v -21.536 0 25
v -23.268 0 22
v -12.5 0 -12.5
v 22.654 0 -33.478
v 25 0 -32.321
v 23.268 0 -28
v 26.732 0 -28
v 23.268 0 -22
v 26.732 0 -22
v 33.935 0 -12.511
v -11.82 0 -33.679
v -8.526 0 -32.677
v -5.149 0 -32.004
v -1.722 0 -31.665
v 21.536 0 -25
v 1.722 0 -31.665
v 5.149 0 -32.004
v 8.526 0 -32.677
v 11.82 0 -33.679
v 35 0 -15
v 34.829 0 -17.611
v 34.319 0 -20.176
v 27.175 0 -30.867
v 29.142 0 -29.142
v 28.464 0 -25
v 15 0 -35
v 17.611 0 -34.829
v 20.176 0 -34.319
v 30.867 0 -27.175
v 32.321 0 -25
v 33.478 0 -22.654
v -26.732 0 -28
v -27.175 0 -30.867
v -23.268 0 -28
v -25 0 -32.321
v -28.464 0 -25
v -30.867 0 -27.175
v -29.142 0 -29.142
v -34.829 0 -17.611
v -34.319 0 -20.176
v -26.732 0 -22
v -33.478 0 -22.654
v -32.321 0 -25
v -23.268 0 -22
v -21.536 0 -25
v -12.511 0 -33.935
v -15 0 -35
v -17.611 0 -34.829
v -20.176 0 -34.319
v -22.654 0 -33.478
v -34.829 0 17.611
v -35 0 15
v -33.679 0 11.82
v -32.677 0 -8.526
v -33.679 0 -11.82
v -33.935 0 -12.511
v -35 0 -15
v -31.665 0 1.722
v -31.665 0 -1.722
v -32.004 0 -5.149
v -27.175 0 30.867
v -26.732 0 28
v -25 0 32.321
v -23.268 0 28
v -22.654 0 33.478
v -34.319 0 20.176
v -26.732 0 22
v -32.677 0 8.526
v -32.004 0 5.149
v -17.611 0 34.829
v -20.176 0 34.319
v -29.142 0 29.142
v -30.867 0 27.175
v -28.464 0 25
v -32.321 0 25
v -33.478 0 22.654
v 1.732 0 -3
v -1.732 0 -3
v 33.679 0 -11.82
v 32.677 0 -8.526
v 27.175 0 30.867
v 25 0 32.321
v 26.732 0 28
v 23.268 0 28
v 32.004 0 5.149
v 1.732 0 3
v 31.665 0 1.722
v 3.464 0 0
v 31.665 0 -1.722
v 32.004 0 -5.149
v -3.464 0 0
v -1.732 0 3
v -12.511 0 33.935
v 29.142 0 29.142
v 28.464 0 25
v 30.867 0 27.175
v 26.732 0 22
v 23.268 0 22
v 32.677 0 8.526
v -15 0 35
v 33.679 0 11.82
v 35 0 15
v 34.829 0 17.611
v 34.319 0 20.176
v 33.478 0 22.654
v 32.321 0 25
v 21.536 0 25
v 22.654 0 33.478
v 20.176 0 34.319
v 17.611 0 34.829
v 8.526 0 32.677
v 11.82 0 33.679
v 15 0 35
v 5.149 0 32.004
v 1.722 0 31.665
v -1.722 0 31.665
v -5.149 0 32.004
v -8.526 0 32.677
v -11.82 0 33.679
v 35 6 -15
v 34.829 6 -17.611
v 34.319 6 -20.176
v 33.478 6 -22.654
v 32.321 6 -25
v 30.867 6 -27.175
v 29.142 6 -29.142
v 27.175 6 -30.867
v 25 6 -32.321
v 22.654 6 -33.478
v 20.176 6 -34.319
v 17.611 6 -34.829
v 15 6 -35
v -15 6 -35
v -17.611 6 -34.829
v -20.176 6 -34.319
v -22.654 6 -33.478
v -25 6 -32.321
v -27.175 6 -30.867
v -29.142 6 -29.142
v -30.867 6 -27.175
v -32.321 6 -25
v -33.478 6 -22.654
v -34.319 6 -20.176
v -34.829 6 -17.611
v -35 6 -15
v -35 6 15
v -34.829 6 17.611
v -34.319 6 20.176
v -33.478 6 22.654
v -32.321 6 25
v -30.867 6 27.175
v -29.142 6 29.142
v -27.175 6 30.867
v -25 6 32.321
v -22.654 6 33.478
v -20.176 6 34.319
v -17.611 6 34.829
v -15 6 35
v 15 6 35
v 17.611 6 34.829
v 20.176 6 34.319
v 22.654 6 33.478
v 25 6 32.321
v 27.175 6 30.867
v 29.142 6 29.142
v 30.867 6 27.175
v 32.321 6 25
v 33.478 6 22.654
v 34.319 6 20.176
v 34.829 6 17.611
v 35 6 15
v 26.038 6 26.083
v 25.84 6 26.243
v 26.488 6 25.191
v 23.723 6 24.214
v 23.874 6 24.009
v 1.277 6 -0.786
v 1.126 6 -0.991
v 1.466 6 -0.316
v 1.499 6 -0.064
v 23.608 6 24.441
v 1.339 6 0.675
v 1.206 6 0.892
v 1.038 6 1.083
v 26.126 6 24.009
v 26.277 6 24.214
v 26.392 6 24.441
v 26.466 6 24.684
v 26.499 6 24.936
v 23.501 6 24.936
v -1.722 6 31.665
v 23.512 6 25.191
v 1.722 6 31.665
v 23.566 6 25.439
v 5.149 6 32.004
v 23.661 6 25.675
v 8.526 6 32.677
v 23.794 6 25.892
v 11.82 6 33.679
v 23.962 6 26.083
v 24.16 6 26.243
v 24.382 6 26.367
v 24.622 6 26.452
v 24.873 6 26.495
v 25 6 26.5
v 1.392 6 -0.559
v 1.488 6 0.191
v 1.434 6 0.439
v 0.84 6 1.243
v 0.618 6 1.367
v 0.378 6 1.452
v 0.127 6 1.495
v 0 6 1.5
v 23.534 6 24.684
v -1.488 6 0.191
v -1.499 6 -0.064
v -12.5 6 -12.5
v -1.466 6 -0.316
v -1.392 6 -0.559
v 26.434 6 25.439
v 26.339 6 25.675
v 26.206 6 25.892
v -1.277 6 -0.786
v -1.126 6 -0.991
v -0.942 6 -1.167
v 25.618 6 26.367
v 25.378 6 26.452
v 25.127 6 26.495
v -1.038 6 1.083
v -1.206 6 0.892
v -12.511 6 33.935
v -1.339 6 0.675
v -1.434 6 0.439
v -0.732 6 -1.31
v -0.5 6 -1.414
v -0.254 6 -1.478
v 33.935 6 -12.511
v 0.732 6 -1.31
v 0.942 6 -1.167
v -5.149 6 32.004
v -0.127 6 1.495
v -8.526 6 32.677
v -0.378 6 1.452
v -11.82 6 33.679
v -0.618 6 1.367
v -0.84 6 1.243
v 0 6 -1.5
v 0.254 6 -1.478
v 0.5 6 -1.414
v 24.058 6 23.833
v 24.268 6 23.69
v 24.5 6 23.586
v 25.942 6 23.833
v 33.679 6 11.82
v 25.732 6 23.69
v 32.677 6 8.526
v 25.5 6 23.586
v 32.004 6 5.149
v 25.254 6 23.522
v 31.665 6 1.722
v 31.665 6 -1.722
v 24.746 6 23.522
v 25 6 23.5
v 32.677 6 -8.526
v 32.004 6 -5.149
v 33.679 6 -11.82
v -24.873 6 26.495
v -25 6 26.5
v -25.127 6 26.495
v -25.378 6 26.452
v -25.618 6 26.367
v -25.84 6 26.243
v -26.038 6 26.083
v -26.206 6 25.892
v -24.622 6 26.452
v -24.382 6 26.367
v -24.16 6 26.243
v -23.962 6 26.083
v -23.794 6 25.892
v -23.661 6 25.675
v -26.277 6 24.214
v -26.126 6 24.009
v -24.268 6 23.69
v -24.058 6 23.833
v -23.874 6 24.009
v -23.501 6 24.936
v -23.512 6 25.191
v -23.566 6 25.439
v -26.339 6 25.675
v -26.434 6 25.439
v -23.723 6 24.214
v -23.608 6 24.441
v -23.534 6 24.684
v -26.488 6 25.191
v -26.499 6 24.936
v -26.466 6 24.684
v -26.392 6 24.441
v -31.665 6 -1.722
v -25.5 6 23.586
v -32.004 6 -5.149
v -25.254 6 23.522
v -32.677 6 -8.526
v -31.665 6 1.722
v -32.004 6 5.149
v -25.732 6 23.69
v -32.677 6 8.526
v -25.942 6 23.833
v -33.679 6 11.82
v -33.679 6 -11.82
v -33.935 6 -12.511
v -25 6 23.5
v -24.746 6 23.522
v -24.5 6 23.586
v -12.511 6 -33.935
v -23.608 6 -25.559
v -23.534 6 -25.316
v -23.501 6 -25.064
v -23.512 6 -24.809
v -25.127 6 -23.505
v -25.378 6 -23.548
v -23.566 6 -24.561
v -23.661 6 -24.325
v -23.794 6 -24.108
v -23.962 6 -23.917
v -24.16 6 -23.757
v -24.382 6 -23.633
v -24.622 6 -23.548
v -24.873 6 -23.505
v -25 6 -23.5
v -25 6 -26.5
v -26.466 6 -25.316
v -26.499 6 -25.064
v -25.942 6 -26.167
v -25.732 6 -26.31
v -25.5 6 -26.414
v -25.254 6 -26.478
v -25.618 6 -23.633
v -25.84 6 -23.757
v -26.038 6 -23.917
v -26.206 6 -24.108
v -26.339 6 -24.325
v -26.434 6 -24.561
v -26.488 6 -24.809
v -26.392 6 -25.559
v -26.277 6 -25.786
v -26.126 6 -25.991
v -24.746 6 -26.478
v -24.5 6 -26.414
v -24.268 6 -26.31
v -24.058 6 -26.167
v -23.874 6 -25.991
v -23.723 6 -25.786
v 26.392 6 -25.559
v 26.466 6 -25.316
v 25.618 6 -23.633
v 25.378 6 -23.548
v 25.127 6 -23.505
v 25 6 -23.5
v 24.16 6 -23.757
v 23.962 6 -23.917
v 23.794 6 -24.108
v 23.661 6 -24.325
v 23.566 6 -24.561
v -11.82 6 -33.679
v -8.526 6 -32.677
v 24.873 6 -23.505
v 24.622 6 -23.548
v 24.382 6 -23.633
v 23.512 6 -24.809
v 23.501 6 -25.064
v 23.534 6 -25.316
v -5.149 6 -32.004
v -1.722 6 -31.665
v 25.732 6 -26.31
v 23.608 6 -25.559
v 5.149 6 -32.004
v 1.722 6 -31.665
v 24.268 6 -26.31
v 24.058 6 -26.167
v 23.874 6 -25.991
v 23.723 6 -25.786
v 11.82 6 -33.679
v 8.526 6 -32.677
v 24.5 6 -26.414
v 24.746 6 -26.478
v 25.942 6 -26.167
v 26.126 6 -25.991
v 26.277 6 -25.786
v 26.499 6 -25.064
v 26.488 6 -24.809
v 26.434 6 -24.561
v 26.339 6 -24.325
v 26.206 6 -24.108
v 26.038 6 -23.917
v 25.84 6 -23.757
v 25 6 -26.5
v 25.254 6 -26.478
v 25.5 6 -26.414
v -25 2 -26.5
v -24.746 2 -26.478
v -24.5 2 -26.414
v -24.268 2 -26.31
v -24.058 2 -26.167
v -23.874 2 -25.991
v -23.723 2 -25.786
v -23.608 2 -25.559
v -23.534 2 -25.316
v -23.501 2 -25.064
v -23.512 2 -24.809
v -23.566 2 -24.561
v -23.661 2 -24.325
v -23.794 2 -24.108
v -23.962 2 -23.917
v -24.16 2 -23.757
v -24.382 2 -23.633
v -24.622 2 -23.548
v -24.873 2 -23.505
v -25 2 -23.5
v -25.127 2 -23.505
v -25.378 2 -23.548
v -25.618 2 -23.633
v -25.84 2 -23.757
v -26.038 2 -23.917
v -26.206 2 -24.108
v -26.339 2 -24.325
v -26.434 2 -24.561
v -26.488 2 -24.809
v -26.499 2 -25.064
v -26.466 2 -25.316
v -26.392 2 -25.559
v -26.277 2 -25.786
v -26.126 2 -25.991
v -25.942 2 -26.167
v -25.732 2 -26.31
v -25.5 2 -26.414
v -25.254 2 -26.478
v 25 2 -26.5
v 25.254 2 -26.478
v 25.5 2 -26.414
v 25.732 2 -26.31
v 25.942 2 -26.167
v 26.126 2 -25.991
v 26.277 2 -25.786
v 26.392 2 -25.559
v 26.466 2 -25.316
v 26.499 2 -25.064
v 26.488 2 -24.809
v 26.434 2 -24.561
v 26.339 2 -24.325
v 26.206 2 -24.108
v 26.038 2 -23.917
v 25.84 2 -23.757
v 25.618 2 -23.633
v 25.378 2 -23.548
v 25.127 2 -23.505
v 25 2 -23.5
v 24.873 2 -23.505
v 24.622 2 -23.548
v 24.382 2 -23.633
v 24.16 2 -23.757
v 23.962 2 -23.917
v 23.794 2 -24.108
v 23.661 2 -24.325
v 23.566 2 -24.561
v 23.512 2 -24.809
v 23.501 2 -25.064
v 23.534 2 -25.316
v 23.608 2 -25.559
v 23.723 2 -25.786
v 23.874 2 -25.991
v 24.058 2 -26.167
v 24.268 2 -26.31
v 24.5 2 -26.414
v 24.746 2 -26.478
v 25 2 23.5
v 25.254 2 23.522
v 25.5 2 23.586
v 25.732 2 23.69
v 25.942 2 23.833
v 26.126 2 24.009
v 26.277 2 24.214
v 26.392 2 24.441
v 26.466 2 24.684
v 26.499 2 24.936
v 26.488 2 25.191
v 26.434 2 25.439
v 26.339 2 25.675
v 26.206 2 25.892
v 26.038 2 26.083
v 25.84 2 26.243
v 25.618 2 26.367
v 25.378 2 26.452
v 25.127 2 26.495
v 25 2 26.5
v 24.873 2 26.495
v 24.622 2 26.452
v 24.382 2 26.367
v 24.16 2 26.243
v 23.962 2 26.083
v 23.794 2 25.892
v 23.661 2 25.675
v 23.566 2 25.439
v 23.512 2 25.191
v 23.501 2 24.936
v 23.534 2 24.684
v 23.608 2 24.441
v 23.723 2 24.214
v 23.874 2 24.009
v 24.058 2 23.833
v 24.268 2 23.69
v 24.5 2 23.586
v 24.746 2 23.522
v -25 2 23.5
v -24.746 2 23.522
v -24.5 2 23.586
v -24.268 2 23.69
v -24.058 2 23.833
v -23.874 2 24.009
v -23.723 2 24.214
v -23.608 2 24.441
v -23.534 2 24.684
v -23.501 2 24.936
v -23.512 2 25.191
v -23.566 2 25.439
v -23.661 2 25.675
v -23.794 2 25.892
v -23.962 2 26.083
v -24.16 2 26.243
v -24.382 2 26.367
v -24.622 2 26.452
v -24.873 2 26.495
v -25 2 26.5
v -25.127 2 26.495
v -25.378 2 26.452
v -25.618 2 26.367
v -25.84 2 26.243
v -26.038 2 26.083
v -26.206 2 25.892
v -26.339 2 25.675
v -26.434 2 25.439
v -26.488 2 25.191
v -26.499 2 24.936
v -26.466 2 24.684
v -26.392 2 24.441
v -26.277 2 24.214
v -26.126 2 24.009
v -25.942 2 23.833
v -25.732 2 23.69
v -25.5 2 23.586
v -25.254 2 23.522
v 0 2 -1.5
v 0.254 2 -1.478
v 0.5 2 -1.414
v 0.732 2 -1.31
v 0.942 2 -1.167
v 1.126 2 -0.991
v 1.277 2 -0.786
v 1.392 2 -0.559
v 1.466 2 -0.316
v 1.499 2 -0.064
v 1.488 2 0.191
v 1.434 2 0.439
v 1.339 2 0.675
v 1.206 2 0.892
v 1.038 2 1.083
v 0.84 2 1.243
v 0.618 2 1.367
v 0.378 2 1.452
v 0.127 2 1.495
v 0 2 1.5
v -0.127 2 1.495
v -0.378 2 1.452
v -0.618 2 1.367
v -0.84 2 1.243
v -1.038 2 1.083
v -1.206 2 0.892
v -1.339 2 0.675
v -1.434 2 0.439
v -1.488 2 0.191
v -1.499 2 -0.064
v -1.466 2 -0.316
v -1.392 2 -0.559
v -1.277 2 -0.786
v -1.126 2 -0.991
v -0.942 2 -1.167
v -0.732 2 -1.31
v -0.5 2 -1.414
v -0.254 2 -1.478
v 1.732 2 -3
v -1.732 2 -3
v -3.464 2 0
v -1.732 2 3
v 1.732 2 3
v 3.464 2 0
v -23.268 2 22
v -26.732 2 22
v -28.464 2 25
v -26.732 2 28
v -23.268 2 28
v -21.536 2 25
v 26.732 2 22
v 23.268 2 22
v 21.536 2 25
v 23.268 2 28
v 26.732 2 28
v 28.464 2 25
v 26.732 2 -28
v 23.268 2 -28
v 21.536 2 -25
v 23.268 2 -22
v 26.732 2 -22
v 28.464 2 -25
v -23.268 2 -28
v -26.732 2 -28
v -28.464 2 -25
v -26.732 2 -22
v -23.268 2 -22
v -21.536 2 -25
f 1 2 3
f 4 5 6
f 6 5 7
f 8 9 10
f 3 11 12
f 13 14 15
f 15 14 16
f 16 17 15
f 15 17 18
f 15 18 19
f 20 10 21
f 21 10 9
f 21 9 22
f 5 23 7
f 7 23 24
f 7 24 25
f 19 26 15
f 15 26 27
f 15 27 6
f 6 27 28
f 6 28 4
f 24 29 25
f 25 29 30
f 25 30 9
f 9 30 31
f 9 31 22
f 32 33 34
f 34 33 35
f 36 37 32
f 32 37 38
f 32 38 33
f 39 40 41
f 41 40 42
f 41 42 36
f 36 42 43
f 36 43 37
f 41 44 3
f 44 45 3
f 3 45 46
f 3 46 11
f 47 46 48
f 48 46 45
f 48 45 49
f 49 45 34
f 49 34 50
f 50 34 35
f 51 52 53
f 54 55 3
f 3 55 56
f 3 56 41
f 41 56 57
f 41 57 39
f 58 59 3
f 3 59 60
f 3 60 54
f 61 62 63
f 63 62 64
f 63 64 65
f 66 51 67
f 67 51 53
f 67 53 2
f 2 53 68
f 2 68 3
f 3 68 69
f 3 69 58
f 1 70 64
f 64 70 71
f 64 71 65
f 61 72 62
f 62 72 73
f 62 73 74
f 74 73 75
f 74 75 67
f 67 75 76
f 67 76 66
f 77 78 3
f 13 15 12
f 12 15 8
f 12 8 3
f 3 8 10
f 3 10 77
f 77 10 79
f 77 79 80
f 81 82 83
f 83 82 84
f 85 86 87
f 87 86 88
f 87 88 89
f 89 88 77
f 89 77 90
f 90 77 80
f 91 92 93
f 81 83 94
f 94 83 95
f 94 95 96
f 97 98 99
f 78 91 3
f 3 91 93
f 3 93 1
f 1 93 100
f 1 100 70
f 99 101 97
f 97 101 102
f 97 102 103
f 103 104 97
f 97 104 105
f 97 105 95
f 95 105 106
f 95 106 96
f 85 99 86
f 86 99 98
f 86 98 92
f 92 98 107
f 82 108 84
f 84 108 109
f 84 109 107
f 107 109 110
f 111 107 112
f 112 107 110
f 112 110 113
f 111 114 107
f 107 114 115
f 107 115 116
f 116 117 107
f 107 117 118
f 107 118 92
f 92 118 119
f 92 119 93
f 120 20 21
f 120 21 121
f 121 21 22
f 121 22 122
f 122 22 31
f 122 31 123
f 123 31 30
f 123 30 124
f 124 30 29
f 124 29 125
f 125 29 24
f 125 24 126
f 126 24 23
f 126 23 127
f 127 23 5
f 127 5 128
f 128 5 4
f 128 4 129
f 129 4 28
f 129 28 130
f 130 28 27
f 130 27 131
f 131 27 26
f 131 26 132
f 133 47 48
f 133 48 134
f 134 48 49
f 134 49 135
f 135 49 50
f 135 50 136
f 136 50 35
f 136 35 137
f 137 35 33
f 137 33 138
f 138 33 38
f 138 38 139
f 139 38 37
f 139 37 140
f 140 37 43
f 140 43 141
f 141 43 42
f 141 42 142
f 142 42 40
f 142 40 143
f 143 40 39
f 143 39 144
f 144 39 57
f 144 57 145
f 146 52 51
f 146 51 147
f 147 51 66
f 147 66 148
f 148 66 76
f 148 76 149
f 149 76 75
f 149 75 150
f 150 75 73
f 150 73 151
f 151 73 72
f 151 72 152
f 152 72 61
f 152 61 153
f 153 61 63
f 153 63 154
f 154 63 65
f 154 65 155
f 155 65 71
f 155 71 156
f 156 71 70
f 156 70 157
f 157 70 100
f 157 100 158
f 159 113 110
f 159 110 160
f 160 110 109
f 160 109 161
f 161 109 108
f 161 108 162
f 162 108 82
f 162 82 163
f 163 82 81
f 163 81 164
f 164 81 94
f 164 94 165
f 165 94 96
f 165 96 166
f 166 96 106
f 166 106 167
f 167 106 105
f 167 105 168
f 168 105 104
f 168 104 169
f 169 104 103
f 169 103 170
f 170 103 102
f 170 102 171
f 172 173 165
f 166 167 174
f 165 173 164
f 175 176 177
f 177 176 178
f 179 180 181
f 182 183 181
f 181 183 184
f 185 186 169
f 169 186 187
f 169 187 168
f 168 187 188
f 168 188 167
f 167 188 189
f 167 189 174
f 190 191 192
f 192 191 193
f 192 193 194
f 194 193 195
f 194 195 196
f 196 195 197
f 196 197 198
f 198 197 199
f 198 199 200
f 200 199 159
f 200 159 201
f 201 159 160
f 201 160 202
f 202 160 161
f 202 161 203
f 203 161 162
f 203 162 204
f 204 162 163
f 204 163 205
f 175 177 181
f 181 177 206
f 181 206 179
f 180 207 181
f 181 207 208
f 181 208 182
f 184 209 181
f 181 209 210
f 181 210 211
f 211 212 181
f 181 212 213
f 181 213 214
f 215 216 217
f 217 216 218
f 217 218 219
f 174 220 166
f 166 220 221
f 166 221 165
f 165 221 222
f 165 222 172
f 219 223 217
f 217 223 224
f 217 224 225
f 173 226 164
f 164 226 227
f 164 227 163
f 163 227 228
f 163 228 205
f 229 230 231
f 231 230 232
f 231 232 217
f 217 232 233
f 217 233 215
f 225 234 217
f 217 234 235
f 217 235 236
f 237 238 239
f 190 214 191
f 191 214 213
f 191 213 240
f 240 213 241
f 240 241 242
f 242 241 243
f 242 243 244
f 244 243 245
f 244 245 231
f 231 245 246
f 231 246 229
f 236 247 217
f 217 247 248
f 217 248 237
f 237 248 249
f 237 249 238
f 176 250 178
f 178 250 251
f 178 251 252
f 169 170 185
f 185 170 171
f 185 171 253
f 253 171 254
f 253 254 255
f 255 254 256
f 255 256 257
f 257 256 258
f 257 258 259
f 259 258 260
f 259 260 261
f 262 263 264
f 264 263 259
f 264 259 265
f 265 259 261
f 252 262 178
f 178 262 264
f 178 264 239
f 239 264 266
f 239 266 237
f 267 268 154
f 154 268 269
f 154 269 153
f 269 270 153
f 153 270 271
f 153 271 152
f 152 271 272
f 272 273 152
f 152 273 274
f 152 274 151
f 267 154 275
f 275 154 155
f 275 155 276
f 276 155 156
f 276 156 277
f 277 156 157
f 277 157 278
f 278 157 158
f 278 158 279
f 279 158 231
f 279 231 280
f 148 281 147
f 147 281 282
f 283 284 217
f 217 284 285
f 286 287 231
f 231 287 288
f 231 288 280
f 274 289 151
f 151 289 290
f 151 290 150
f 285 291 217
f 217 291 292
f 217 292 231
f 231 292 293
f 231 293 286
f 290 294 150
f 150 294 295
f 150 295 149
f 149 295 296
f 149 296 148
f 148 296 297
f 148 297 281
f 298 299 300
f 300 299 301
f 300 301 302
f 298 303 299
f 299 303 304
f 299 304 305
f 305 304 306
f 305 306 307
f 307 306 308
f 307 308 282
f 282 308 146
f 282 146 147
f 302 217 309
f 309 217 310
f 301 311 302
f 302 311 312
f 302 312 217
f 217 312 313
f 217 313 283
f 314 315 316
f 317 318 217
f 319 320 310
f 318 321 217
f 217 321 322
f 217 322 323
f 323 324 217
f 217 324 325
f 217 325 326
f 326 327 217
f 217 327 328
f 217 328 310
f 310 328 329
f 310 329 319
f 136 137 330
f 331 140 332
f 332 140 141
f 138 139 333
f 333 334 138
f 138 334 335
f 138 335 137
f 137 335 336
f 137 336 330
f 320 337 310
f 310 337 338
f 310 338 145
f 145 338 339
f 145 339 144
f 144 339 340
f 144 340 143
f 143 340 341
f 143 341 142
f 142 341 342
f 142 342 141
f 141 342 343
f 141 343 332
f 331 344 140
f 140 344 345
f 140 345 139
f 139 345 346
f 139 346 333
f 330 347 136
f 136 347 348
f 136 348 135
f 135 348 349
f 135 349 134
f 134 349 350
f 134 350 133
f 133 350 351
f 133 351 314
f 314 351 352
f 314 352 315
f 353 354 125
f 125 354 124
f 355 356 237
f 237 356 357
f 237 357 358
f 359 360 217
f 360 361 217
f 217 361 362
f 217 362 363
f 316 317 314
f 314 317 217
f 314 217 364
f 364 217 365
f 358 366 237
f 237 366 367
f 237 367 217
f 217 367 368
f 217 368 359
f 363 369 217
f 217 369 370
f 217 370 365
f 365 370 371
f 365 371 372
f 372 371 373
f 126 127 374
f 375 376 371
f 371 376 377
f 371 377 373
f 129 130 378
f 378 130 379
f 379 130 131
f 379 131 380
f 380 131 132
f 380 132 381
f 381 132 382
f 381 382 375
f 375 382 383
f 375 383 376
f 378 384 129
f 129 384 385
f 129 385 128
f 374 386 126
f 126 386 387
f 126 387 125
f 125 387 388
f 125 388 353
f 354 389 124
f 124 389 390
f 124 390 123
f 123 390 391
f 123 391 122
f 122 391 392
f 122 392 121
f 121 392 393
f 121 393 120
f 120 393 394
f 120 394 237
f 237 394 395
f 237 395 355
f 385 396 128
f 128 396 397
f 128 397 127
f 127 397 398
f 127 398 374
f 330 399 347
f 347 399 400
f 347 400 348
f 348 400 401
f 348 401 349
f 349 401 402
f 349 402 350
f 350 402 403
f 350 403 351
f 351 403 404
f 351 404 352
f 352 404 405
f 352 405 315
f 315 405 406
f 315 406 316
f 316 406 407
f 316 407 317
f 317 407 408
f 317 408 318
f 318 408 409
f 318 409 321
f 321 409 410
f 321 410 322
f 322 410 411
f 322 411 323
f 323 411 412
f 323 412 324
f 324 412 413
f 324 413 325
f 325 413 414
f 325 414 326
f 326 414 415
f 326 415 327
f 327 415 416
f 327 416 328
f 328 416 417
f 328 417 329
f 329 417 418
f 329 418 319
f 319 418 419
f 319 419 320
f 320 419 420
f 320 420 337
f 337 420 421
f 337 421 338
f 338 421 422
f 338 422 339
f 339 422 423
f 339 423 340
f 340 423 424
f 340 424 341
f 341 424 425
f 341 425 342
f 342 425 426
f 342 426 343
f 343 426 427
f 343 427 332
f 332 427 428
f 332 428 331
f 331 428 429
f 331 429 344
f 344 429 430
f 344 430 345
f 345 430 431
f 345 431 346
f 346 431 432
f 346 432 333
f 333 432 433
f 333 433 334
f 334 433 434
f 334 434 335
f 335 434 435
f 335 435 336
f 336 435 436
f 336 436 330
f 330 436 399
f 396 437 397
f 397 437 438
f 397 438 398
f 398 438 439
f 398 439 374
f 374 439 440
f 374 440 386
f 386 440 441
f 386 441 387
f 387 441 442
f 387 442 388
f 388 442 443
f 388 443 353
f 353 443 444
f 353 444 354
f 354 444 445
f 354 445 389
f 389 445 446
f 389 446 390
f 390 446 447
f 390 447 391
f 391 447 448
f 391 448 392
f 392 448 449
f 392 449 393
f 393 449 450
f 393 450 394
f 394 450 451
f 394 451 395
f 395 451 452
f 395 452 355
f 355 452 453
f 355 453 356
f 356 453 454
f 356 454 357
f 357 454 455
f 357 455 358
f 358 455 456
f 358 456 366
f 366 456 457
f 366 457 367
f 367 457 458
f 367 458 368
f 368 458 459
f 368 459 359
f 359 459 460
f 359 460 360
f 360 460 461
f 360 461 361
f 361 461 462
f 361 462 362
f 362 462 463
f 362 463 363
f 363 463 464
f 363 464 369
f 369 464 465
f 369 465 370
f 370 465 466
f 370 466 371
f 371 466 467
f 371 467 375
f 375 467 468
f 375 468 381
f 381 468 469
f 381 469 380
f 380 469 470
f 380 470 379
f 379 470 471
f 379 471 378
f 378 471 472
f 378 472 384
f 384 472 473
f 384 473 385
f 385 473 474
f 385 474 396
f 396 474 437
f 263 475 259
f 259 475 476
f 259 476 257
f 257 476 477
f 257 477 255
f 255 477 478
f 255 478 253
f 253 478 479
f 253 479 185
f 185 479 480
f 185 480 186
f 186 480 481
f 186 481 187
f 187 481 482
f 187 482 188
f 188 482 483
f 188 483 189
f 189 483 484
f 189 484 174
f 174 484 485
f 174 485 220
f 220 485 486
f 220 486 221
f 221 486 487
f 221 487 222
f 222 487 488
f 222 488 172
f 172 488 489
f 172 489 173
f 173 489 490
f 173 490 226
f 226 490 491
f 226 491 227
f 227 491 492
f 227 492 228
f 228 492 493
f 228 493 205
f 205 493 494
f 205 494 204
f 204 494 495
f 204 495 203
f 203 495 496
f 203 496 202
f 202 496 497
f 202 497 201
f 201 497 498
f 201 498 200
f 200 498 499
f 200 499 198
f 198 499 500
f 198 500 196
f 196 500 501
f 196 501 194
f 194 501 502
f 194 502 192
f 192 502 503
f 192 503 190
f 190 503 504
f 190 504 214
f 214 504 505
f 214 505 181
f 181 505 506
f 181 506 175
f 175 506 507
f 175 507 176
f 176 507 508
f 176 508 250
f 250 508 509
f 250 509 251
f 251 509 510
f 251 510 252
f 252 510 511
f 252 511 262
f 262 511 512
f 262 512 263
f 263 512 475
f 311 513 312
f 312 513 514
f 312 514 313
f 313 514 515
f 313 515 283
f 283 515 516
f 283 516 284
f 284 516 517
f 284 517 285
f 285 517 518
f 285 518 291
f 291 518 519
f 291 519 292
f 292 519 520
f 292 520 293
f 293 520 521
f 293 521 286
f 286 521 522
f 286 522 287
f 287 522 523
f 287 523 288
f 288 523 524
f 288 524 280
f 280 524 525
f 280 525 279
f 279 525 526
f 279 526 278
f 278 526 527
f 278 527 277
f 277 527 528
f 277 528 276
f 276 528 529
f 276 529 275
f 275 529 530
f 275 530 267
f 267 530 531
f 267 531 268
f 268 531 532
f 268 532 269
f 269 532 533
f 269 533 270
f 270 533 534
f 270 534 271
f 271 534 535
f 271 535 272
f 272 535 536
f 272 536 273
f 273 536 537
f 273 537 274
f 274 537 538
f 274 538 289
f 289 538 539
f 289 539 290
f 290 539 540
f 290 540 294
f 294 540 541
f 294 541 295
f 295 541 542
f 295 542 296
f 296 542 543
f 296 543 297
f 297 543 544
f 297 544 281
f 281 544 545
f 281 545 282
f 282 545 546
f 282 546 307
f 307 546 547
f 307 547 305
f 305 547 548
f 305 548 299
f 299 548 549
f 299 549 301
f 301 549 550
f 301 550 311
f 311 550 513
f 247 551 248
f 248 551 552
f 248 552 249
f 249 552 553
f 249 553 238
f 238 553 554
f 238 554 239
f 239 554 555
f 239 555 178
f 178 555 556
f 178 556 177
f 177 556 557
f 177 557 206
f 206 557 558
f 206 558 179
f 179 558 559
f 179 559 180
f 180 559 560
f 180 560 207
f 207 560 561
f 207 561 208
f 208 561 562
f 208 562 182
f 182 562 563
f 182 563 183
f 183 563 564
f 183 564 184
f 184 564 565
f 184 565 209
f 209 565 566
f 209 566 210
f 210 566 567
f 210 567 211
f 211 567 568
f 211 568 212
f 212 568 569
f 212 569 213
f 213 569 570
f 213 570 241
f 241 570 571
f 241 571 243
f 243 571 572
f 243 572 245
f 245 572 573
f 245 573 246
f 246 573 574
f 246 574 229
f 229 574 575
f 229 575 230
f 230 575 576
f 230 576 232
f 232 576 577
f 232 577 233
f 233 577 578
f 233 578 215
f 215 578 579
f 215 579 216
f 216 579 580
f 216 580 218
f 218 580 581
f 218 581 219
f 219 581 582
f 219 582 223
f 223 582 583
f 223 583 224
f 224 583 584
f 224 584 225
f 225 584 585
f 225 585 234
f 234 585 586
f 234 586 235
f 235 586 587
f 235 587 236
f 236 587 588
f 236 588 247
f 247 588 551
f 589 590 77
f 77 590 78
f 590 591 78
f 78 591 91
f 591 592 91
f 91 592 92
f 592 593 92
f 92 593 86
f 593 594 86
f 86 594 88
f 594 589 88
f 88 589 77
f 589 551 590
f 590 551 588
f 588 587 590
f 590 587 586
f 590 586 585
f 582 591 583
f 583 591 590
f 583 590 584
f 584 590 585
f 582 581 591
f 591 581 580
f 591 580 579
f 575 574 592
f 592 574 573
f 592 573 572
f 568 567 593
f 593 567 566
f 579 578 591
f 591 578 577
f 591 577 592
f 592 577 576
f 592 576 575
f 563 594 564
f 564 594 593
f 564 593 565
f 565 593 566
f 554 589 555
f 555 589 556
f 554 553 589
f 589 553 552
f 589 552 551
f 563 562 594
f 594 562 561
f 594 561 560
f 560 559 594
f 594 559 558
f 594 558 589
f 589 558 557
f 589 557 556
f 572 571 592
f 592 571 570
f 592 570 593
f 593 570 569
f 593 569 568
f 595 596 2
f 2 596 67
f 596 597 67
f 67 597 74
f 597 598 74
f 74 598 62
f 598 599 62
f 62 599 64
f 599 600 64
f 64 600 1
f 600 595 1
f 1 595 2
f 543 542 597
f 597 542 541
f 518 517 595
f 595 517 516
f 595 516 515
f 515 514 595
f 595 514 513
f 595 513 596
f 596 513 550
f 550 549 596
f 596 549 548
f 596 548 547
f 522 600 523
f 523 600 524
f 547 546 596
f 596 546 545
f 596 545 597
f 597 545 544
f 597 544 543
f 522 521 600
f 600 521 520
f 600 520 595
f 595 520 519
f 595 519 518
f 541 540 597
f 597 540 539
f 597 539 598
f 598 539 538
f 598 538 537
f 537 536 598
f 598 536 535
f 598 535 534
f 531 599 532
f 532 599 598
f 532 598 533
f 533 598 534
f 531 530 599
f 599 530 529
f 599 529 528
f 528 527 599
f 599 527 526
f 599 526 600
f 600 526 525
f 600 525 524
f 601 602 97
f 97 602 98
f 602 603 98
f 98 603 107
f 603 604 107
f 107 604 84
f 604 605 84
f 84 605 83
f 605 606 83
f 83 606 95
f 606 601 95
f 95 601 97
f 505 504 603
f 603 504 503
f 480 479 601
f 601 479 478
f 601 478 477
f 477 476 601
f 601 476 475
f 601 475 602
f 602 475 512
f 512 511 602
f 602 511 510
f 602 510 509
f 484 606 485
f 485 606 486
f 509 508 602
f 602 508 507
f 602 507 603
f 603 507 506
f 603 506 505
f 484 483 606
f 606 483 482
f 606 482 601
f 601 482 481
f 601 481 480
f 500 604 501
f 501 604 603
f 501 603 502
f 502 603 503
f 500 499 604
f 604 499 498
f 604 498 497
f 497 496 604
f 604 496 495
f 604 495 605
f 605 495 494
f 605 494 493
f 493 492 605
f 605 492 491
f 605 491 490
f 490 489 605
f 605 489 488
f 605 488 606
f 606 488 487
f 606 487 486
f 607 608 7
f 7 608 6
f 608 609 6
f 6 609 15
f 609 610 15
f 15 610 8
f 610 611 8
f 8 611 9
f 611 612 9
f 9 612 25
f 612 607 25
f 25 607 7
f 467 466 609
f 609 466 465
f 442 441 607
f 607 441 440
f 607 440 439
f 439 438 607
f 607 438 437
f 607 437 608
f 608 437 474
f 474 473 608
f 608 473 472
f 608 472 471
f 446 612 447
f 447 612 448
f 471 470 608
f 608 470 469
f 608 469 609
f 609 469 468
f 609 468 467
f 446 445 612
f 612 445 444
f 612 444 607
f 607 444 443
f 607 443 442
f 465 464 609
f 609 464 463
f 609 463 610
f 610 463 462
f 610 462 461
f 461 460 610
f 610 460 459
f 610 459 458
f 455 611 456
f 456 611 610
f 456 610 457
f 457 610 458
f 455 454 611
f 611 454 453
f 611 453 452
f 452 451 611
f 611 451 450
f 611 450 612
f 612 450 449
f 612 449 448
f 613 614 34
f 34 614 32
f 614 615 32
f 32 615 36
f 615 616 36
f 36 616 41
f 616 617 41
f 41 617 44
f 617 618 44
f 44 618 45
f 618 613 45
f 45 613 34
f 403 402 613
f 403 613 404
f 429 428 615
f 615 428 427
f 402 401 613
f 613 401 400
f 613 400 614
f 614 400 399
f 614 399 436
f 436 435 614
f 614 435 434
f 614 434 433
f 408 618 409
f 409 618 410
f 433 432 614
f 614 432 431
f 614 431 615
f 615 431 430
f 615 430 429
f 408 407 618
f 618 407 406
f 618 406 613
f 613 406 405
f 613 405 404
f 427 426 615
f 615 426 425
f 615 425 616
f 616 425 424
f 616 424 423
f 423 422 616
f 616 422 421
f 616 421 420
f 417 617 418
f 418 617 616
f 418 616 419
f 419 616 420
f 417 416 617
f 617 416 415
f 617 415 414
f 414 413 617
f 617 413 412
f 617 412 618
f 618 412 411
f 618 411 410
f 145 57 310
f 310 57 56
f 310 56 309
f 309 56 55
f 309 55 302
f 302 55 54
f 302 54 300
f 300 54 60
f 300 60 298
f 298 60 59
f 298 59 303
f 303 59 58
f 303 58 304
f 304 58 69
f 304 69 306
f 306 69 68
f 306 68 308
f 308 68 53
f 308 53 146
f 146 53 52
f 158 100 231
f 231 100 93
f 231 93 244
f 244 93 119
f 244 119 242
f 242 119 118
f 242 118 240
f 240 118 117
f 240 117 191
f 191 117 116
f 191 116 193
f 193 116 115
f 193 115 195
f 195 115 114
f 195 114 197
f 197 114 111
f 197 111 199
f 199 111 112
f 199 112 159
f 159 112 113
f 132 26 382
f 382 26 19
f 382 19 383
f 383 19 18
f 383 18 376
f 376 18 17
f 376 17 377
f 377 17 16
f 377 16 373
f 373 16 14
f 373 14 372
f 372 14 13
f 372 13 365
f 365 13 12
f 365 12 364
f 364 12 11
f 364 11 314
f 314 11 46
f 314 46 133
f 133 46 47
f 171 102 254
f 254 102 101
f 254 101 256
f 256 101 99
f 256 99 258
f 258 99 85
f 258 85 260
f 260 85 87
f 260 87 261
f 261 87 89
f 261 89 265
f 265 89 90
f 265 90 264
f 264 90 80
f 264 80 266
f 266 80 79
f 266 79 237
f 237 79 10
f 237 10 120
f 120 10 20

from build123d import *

# Parameters (mm, degrees)
EXTRUDE_1_DEPTH     = 6
SKETCH_2_R          = 1.5
CUT_EXTRUDE_1_DEPTH = 6
CUT_EXTRUDE_2_DEPTH = 2
SKETCH_4_R          = 35
CUT_EXTRUDE_3_DEPTH = 50.859803449


with BuildPart() as part:
    # Эскиз1 → Бобышка-Вытянуть1 (new body)
    with BuildSketch(Plane(origin=(0, 0, 0), x_dir=(1, 0, 0), z_dir=(0, 1, 0))):
        with BuildLine():
            Line((15, -35), (-15, -35))
            ThreePointArc((-15, -35), (-29.142135624, -29.142135624), (-35, -15))
            Line((-35, -15), (-35, 15))
            ThreePointArc((-35, 15), (-29.142135624, 29.142135624), (-15, 35))
            Line((-15, 35), (15, 35))
            ThreePointArc((15, 35), (29.142135624, 29.142135624), (35, 15))
            Line((35, 15), (35, -15))
            ThreePointArc((35, -15), (29.142135624, -29.142135624), (15, -35))
        make_face()
    extrude(amount=EXTRUDE_1_DEPTH)

    # Эскиз2 → Вырез-Вытянуть1 (cut)
    with BuildSketch(Plane(origin=(0, 0, 0), x_dir=(1, 0, 0), z_dir=(0, 1, 0))):
        with Locations(Location((-25, 25, 0), (0, 0, 270))):
            Circle(SKETCH_2_R)
        with Locations(Location((25, 25, 0), (0, 0, 270))):
            Circle(SKETCH_2_R)
        with Locations(Location((25, -25, 0), (0, 0, 270))):
            Circle(SKETCH_2_R)
        with Locations(Location((-25, -25, 0), (0, 0, 270))):
            Circle(SKETCH_2_R)
        with Locations(Location((0, 0, 0), (0, 0, 270))):
            Circle(SKETCH_2_R)
    extrude(amount=CUT_EXTRUDE_1_DEPTH, mode=Mode.SUBTRACT)

    # Эскиз3 → Вырез-Вытянуть2 (cut)
    with BuildSketch(Plane(origin=(0, 0, 0), x_dir=(1, 0, 0), z_dir=(0, 1, 0))):
        Polygon((-26.732050808, 28), (-28.464101615, 25), (-26.732050808, 22), (-23.267949192, 22), (-21.535898385, 25), (-23.267949192, 28), align=None)
        Polygon((23.267949192, 28), (21.535898385, 25), (23.267949192, 22), (26.732050808, 22), (28.464101615, 25), (26.732050808, 28), align=None)
        Polygon((23.267949192, -22), (21.535898385, -25), (23.267949192, -28), (26.732050808, -28), (28.464101615, -25), (26.732050808, -22), align=None)
        Polygon((-26.732050808, -22), (-28.464101615, -25), (-26.732050808, -28), (-23.267949192, -28), (-21.535898385, -25), (-23.267949192, -22), align=None)
        Polygon((-1.732050808, 3), (-3.464101615, 0), (-1.732050808, -3), (1.732050808, -3), (3.464101615, 0), (1.732050808, 3), align=None)
    extrude(amount=CUT_EXTRUDE_2_DEPTH, mode=Mode.SUBTRACT)

    # Эскиз4 → Вырез-Вытянуть3 (cut, through all)
    with BuildSketch(Plane(origin=(0, 0, 0), x_dir=(1, 0, 0), z_dir=(0, 1, 0))):
        with Locations((-66.622776602, 0)):
            Circle(SKETCH_4_R)
        with Locations((0, 66.622776602)):
            Circle(SKETCH_4_R)
        with Locations((66.622776602, 0)):
            Circle(SKETCH_4_R)
        with Locations((0, -66.622776602)):
            Circle(SKETCH_4_R)
    extrude(amount=CUT_EXTRUDE_3_DEPTH, mode=Mode.SUBTRACT)


solid = part.part
